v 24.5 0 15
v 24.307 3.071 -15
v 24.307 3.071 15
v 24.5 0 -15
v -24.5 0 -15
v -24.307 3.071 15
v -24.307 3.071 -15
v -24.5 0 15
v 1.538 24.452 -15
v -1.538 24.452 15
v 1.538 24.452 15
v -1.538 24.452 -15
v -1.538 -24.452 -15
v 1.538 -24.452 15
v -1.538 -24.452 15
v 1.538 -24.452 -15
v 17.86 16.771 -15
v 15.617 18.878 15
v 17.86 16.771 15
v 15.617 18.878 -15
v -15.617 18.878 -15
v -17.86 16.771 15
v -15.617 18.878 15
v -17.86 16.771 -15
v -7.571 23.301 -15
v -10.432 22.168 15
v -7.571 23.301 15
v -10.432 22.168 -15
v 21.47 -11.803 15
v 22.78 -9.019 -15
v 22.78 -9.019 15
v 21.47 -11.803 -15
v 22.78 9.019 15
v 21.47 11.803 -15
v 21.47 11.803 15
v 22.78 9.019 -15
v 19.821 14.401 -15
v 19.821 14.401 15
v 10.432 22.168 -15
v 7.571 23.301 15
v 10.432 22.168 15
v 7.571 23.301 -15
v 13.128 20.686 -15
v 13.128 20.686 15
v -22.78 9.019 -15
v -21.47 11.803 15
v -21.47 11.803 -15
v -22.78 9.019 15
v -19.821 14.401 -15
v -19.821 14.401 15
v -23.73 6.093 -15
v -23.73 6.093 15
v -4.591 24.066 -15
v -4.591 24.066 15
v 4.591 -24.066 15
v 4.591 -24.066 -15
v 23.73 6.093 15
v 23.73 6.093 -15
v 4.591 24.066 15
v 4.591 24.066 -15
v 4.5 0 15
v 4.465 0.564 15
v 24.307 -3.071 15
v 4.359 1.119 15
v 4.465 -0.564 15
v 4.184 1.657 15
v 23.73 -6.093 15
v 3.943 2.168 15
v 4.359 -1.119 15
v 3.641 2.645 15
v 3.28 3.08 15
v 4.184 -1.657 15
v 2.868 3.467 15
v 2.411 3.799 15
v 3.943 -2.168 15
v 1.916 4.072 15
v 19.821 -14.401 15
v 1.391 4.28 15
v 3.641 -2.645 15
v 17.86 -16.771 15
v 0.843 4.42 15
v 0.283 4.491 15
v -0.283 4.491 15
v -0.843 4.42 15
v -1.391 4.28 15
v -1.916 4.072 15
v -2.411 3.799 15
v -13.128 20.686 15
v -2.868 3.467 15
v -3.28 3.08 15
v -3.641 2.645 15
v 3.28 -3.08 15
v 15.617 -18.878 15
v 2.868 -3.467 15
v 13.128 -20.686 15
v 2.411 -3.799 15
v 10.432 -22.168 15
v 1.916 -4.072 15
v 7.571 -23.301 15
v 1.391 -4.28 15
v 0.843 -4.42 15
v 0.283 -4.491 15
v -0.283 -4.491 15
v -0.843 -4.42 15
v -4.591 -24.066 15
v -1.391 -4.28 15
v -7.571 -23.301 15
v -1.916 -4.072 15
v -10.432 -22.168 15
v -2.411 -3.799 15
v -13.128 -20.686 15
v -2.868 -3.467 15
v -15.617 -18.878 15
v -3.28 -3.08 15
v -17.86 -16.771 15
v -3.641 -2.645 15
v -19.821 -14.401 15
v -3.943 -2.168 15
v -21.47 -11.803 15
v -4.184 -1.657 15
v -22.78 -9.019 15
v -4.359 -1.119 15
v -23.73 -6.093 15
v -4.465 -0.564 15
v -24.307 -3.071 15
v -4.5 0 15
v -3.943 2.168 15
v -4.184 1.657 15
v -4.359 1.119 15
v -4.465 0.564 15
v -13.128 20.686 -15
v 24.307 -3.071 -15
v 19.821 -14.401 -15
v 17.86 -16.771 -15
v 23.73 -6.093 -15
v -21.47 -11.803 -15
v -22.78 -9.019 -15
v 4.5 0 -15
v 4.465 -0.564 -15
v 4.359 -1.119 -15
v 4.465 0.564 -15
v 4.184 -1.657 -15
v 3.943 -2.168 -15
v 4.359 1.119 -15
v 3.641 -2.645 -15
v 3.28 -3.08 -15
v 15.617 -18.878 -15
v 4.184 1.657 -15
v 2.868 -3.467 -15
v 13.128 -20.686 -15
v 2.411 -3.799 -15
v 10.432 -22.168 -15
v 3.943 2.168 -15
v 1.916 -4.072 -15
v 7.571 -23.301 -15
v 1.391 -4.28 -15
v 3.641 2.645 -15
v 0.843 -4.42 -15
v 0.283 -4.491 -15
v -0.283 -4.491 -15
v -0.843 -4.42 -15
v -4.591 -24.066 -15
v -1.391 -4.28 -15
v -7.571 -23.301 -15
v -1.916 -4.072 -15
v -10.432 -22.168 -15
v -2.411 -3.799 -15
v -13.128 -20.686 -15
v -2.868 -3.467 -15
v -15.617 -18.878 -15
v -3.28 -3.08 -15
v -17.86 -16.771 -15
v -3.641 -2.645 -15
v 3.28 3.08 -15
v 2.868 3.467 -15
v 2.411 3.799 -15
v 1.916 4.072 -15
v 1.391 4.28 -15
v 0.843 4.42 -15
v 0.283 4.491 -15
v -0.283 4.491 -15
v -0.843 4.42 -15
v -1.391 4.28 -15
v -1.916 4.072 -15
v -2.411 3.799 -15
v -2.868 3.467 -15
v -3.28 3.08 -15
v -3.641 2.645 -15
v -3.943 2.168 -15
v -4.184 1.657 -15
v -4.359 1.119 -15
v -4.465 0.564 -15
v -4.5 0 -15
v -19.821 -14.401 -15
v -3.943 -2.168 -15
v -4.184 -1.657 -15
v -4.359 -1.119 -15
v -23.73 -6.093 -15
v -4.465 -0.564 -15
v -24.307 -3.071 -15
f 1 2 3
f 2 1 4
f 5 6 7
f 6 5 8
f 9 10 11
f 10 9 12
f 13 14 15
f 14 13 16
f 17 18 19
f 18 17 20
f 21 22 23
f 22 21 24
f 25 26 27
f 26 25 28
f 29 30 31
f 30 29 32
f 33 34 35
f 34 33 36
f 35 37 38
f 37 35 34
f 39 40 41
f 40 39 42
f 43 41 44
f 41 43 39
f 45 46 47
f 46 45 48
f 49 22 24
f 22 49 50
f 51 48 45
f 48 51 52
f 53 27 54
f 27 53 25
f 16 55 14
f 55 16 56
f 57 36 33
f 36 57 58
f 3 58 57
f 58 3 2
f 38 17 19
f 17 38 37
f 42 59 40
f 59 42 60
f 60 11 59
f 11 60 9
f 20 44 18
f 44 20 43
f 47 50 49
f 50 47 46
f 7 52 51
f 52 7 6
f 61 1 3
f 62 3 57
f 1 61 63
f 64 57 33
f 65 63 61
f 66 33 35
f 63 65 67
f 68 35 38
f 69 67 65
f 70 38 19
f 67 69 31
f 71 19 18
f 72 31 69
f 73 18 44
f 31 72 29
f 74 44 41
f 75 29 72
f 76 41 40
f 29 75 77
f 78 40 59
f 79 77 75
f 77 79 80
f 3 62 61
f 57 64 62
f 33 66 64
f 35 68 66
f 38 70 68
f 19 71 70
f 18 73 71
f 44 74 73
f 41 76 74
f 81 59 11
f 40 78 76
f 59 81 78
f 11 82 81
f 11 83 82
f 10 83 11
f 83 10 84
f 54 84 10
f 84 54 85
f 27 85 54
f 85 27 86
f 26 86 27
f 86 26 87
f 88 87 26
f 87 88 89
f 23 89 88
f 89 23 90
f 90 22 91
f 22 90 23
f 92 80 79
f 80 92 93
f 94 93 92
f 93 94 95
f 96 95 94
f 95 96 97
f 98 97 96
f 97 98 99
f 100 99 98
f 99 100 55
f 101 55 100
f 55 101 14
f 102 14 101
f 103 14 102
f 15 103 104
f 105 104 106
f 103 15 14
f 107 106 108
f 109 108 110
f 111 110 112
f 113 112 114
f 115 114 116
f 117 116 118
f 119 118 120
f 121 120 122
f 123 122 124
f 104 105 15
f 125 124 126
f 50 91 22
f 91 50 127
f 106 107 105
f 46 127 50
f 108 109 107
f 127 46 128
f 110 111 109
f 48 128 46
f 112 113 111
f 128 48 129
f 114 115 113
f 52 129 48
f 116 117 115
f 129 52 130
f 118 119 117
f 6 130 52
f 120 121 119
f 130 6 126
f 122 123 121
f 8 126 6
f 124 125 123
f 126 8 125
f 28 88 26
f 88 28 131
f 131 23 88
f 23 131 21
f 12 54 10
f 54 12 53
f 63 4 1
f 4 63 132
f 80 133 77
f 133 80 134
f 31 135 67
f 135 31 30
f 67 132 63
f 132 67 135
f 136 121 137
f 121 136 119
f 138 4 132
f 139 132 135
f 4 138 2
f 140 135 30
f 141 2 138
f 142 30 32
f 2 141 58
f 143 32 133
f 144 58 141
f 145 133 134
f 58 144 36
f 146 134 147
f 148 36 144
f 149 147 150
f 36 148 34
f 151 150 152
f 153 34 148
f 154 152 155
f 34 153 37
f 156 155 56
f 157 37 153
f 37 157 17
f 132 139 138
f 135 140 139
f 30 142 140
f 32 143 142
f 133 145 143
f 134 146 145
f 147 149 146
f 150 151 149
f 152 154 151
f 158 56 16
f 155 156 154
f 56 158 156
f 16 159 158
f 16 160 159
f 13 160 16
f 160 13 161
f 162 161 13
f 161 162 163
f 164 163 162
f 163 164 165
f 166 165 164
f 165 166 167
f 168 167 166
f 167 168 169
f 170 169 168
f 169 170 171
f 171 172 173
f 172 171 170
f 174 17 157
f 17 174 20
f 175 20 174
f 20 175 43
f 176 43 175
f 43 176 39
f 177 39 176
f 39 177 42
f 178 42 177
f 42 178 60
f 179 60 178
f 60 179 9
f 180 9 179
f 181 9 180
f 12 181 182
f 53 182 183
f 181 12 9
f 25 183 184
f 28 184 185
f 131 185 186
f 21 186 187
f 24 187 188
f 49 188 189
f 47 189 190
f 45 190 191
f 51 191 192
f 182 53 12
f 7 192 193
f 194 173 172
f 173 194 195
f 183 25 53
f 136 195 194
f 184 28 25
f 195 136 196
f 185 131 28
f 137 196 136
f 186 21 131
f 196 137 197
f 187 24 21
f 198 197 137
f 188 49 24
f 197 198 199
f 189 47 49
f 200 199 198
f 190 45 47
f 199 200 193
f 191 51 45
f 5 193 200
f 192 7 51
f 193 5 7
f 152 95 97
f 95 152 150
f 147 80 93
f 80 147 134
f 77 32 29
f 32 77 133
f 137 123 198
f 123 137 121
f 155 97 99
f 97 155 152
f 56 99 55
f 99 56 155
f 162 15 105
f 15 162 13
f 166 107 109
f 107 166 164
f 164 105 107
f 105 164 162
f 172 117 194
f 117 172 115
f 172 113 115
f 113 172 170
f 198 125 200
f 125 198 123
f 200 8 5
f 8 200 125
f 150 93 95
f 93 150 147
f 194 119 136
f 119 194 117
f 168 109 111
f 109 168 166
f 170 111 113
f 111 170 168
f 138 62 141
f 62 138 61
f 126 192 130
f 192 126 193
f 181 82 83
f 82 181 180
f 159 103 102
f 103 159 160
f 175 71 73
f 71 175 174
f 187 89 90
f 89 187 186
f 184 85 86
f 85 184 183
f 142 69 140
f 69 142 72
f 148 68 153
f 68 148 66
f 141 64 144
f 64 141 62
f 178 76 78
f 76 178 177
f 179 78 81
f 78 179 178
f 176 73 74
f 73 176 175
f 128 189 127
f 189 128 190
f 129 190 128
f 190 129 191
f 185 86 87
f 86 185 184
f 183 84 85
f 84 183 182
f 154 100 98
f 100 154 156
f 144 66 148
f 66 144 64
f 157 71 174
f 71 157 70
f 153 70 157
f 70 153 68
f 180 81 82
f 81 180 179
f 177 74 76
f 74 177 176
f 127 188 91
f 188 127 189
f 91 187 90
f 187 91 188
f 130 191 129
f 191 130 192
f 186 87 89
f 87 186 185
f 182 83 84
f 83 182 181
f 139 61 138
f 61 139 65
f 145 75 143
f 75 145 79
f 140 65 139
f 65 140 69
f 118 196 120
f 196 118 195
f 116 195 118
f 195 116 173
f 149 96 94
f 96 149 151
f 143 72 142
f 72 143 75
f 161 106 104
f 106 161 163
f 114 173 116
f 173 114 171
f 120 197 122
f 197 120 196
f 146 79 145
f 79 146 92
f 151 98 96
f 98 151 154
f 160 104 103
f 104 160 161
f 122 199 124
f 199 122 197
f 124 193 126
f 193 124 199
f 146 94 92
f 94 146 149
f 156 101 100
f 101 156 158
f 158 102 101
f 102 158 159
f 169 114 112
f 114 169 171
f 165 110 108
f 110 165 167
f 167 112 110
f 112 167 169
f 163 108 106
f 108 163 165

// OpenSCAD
$fn = 50;


difference() {
	union() {
		translate(v = [0, 0, -15.0000000000]) {
			cylinder(h = 30, r = 24.5000000000);
		}
	}
	union() {
		translate(v = [0, 0, -100.0000000000]) {
			cylinder(h = 200, r = 4.5000000000);
		}
	}
}
